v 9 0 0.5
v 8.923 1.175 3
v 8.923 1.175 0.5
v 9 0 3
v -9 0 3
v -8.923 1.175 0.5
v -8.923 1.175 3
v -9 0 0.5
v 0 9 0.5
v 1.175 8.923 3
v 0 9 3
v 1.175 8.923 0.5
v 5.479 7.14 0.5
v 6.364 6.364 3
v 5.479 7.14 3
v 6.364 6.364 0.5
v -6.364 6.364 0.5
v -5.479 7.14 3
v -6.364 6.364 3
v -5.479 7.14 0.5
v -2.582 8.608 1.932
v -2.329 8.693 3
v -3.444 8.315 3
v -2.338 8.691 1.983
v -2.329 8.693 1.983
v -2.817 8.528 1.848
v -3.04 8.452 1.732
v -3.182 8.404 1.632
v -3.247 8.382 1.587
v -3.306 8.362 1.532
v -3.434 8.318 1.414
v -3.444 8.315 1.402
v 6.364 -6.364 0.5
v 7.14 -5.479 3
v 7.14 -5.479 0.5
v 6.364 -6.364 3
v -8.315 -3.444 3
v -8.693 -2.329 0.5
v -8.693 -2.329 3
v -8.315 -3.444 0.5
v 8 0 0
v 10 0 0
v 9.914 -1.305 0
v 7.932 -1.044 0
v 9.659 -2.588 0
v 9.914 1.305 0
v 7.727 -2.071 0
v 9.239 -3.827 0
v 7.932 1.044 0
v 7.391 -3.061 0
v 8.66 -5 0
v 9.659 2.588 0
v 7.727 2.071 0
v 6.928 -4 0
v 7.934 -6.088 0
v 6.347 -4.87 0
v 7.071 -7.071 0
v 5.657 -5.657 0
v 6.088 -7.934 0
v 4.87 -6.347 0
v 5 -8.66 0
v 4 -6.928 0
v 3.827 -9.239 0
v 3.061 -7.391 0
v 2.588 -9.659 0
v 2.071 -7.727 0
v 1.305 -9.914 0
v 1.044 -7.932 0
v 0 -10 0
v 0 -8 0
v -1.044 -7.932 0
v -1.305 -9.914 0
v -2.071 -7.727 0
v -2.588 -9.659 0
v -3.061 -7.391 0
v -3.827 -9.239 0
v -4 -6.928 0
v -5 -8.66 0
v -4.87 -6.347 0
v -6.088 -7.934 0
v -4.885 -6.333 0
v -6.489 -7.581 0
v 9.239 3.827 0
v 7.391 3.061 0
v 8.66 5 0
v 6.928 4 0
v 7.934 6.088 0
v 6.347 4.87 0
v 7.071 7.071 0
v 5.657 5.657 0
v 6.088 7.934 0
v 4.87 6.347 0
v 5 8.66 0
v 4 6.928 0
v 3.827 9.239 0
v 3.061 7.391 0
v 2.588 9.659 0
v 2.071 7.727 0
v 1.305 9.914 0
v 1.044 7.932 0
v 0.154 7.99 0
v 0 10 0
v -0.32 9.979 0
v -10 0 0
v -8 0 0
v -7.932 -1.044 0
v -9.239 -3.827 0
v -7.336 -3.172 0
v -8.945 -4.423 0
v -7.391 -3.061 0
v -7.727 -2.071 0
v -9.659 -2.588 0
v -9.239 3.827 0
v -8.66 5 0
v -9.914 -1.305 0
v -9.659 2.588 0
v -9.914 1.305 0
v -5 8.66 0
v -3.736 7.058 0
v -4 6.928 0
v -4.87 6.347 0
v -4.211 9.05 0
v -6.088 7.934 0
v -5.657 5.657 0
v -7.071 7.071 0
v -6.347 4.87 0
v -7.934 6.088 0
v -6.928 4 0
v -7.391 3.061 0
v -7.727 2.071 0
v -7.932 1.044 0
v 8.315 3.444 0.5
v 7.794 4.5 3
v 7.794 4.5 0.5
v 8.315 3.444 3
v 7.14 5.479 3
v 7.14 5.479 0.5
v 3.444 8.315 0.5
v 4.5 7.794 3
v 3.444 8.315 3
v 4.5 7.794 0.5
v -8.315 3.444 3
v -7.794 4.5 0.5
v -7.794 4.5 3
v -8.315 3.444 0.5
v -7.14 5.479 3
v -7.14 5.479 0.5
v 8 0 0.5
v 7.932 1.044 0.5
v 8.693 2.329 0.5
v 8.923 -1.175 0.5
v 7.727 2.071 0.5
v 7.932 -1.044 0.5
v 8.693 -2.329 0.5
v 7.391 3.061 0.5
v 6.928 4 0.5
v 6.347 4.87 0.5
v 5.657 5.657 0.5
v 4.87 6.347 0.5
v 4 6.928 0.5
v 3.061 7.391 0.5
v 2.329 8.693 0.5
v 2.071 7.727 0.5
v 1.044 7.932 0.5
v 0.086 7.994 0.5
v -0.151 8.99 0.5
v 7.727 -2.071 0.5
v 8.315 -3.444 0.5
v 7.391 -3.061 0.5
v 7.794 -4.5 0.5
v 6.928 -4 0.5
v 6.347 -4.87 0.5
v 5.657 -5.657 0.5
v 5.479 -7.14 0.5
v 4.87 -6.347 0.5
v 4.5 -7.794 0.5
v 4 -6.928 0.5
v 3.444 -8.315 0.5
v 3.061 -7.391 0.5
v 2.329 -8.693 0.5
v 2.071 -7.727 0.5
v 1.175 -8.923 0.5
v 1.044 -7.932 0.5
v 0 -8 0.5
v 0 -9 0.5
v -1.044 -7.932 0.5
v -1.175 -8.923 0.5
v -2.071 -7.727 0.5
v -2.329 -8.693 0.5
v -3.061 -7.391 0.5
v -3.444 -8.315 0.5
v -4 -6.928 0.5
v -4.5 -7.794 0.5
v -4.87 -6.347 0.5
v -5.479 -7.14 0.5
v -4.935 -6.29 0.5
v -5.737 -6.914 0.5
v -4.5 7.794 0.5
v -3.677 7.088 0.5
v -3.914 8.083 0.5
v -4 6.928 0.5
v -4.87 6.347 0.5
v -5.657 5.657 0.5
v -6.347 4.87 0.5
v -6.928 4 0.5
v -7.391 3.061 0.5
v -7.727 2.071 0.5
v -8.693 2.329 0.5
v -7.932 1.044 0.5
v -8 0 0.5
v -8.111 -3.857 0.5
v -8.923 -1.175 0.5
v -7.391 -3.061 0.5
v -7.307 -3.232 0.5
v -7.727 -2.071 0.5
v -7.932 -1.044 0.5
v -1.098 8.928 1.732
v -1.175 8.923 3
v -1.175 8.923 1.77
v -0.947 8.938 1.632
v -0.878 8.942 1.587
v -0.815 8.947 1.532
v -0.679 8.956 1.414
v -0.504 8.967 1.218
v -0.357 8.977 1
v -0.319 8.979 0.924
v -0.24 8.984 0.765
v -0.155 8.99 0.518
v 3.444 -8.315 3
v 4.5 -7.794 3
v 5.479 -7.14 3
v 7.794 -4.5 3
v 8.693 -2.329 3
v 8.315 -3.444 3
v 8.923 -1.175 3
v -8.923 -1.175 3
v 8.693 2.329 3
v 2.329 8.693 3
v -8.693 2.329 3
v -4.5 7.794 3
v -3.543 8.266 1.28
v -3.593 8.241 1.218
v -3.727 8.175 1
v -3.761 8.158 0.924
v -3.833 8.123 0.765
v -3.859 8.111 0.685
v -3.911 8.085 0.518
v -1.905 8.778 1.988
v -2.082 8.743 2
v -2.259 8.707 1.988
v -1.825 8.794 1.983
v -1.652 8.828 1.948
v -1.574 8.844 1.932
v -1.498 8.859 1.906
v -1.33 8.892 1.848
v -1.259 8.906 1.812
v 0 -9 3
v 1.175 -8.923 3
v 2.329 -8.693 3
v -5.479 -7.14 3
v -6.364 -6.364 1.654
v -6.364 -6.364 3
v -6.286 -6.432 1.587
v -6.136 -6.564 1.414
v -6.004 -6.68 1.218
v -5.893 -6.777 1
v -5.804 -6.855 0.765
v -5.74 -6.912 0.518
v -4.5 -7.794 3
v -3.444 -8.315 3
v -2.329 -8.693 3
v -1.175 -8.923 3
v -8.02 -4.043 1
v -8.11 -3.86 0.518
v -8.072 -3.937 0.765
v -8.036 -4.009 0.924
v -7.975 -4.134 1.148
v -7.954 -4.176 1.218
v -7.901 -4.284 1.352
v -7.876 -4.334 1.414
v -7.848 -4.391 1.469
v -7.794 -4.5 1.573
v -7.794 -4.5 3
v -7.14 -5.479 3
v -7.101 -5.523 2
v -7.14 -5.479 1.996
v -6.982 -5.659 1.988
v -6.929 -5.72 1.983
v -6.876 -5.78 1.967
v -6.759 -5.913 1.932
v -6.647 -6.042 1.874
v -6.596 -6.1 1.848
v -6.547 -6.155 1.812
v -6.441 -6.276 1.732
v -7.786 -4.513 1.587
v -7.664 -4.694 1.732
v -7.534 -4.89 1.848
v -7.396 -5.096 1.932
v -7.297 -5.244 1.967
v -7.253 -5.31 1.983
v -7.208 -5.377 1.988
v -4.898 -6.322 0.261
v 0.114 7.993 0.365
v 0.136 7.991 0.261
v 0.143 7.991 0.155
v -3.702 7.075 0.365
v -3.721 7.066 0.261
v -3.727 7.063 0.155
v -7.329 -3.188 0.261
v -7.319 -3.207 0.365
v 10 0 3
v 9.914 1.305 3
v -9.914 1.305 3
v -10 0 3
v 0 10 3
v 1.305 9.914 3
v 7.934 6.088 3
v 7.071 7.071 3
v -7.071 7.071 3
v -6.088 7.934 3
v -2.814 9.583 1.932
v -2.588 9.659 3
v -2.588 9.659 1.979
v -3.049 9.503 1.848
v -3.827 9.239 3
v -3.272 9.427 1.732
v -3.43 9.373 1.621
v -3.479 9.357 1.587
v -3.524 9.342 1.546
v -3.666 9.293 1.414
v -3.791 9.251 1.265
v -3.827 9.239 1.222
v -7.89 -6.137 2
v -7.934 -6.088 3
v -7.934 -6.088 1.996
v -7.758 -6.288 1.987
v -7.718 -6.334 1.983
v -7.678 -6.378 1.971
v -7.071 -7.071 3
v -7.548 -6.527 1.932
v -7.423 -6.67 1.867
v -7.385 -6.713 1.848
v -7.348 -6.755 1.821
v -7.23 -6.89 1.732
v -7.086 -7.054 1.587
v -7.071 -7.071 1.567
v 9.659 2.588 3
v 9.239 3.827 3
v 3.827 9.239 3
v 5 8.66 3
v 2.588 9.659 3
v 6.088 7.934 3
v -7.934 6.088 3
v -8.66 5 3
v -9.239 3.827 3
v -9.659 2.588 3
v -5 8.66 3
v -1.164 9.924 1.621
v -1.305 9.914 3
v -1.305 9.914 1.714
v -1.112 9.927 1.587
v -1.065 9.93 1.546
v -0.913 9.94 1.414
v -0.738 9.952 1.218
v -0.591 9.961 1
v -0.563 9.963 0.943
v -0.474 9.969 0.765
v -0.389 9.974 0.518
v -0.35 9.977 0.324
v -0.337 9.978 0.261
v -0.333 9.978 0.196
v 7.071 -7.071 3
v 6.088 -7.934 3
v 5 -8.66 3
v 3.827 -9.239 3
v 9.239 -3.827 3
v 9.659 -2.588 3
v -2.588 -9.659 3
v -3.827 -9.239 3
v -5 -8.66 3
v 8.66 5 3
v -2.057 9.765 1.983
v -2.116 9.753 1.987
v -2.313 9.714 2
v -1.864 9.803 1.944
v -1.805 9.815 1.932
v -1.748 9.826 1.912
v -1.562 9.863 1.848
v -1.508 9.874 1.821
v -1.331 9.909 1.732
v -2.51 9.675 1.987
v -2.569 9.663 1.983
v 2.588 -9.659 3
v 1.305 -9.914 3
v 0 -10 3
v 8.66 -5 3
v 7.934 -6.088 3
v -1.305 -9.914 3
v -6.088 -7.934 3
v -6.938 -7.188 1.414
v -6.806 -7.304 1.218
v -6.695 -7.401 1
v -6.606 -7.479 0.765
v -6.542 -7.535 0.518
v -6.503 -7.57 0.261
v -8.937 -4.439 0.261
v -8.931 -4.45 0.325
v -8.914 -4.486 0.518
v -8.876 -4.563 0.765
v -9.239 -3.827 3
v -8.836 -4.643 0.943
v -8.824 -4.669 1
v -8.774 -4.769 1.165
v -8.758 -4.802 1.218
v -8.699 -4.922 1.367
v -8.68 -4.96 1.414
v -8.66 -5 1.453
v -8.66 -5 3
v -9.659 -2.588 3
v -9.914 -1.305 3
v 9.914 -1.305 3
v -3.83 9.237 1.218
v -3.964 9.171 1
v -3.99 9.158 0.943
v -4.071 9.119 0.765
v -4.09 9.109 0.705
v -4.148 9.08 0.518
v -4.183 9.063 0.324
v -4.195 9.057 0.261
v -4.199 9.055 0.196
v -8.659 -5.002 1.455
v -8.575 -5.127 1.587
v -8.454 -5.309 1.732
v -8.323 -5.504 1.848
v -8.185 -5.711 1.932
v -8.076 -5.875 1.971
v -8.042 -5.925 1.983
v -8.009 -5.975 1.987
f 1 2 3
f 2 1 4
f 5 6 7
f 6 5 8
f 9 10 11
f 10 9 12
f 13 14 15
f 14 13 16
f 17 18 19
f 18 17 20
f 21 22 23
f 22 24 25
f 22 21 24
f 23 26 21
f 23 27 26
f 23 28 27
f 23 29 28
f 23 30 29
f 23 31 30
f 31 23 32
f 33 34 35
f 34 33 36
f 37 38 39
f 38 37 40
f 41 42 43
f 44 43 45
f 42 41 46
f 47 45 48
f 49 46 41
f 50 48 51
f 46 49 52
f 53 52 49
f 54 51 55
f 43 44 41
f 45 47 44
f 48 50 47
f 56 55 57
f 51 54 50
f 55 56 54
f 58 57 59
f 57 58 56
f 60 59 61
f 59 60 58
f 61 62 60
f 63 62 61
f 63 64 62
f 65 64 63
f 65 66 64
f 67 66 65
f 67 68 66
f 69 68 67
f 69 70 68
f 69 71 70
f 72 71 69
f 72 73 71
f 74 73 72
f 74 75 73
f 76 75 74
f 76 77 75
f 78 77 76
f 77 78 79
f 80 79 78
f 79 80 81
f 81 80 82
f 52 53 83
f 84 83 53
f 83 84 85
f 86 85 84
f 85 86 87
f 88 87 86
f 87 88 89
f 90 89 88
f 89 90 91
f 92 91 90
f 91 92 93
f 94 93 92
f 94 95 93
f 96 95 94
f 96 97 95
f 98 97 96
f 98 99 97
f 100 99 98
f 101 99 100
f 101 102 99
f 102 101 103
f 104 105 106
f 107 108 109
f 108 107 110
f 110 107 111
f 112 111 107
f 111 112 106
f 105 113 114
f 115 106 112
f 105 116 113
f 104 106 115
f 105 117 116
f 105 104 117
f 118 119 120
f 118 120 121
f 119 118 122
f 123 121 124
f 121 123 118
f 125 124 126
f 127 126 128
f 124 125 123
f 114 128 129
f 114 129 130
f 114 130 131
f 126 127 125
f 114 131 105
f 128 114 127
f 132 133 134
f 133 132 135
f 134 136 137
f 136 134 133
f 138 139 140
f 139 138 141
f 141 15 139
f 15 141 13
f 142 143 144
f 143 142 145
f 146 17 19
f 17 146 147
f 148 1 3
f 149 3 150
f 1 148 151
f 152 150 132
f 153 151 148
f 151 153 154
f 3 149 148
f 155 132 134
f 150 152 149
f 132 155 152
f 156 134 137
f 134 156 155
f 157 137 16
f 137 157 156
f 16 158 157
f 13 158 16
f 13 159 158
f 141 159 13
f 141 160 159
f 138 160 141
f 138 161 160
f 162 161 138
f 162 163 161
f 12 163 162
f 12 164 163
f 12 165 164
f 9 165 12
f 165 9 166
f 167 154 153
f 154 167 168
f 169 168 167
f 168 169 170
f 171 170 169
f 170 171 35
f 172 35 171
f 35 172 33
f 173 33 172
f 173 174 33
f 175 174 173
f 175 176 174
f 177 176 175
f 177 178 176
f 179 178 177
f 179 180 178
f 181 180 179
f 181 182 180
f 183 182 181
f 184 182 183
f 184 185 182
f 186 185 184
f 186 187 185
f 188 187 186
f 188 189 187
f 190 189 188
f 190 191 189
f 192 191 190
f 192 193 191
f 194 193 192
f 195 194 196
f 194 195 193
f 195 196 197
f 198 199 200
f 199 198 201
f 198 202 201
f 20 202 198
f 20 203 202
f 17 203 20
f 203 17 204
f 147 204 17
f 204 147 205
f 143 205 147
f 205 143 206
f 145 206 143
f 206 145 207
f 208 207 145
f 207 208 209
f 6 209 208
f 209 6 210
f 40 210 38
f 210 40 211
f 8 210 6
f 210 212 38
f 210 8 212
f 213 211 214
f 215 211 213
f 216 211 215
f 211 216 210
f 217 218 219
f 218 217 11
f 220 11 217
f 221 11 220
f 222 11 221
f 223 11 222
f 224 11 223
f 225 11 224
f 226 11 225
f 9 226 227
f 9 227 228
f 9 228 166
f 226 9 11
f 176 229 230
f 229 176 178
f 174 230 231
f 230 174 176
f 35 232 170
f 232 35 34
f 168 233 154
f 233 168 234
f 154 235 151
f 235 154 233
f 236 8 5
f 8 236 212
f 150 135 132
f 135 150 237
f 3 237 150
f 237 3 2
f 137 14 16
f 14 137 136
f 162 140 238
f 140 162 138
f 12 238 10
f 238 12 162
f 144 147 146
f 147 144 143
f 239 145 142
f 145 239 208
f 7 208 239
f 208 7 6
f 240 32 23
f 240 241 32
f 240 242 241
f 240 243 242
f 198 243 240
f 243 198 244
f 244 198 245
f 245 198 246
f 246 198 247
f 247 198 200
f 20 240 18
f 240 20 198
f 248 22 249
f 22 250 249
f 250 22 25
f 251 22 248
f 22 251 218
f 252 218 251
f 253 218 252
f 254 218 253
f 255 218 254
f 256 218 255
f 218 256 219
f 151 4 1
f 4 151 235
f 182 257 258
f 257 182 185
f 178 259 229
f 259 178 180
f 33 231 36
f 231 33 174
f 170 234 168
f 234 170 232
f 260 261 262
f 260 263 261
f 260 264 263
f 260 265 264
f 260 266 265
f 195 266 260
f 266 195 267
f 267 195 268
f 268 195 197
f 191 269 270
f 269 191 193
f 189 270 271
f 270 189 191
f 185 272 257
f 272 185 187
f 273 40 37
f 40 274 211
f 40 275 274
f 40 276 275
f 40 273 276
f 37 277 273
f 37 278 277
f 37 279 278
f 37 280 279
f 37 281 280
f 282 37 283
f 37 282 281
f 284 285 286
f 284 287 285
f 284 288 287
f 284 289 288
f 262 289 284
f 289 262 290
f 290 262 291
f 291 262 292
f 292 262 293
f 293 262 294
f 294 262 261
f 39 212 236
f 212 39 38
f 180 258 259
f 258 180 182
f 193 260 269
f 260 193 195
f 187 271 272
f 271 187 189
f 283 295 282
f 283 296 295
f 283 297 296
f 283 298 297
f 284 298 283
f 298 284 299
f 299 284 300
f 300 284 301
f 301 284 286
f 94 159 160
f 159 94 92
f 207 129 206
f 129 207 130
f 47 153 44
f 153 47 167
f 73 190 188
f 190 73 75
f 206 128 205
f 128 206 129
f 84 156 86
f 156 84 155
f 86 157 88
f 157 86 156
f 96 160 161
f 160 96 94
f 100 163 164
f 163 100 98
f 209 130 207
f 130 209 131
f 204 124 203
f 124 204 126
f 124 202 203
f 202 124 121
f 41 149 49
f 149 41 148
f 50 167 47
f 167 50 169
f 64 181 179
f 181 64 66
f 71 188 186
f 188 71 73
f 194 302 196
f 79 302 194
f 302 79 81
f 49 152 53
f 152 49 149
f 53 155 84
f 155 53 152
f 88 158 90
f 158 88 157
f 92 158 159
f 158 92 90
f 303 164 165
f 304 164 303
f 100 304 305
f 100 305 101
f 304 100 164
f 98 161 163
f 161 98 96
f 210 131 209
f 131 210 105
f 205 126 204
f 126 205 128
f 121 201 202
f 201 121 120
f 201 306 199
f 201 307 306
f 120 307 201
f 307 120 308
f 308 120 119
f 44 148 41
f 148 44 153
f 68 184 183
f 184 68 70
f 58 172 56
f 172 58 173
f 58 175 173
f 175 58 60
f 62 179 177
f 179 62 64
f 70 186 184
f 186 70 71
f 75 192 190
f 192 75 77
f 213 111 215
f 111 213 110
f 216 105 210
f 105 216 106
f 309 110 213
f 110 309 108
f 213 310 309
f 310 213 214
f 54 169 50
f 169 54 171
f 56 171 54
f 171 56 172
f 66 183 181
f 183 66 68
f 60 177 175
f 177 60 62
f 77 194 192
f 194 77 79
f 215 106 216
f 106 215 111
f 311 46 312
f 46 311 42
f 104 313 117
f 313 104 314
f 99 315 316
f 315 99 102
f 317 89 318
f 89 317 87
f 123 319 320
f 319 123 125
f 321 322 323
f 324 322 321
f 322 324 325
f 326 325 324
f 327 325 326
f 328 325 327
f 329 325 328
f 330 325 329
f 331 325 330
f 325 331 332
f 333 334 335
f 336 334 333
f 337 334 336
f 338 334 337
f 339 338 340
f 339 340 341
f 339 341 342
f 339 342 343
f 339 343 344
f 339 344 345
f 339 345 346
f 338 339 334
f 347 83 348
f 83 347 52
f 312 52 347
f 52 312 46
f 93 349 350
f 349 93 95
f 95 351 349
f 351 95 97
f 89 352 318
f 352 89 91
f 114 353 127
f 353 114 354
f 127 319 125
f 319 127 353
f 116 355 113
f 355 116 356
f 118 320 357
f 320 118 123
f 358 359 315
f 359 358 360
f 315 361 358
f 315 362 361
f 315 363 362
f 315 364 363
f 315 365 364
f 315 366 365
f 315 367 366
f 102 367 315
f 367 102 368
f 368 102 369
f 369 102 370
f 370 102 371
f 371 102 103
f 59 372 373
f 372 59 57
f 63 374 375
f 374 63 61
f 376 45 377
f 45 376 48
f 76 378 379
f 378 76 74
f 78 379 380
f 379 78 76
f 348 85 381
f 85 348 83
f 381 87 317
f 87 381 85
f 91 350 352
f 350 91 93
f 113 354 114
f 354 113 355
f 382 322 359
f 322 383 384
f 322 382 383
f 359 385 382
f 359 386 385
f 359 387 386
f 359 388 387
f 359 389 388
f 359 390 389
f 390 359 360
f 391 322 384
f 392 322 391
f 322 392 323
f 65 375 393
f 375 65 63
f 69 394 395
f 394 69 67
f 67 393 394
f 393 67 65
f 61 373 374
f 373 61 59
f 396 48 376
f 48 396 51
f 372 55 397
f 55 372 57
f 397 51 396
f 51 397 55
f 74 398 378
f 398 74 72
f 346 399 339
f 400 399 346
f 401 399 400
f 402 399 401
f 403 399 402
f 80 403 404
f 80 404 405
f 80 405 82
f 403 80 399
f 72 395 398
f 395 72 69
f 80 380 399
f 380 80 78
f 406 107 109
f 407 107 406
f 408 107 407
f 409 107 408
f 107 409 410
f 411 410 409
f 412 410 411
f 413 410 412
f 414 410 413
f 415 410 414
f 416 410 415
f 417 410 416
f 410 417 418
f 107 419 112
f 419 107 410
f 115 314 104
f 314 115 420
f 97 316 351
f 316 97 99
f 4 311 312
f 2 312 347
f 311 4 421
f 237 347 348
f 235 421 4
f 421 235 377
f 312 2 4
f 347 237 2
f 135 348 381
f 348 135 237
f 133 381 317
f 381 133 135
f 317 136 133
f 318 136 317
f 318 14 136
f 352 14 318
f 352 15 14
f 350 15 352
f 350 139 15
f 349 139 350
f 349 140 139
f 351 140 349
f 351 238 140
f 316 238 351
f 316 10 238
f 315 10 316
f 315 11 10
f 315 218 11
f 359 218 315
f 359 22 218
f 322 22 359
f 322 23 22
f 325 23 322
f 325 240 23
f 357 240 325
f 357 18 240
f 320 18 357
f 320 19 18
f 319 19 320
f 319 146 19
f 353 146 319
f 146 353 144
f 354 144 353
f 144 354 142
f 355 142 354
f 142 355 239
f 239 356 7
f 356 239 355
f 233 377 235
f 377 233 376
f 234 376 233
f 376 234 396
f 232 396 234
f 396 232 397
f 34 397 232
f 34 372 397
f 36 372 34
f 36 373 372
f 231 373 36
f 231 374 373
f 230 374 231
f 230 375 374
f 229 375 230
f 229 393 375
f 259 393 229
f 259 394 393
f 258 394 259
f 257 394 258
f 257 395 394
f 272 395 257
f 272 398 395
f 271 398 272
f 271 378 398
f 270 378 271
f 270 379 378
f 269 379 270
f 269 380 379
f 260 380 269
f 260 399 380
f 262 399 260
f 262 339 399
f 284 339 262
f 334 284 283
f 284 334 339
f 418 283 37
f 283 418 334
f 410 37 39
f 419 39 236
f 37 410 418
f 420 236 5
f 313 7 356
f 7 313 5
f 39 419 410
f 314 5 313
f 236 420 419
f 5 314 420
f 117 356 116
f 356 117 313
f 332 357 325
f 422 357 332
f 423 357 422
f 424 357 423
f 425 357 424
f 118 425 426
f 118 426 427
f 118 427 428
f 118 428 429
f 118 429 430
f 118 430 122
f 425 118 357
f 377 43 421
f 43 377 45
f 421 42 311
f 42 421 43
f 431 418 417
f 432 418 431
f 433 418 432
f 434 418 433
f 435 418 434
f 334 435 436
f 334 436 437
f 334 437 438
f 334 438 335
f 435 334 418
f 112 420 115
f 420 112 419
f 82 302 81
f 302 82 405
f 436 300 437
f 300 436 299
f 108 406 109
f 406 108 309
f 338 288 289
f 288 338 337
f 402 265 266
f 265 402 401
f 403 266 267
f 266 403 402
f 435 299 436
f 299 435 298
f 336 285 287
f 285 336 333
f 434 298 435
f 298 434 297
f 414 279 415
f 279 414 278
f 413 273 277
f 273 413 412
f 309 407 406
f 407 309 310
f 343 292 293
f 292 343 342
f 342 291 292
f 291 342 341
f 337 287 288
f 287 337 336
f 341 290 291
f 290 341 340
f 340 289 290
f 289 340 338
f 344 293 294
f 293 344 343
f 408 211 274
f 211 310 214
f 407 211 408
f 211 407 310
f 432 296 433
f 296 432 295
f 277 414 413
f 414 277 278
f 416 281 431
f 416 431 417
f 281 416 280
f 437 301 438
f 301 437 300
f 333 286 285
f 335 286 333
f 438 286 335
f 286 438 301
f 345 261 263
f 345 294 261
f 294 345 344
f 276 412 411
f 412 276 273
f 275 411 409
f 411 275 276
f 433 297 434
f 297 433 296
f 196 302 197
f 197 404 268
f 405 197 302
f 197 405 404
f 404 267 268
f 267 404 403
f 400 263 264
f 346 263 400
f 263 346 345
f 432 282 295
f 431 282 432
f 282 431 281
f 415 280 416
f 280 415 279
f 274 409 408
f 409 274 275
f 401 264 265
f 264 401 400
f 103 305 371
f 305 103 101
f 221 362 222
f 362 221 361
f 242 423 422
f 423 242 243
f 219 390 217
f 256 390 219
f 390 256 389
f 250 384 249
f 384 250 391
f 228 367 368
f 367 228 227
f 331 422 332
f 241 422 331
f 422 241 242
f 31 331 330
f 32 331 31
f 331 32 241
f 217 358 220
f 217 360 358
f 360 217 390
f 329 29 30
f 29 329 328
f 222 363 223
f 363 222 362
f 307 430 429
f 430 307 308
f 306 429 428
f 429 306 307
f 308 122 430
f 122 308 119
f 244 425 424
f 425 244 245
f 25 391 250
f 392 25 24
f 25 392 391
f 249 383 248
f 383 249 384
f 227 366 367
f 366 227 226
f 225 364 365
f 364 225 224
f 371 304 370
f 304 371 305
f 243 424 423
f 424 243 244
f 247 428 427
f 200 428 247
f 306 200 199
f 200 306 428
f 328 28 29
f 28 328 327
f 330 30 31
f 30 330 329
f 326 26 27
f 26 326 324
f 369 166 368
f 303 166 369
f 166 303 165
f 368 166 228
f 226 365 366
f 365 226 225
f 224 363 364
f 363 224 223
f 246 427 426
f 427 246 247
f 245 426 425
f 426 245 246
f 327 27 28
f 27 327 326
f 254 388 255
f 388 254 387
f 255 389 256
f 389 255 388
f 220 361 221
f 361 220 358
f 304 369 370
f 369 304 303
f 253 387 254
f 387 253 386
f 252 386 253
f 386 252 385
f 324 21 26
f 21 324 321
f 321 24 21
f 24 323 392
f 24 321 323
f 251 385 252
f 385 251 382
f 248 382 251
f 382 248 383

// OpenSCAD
// file: ../build_environments.scad
// build_environments.scad: modules to build level sections
//

module pool(diameter=10.0, wall_height=2.0, step_width=3.0, connections=[])
{
    difference() {
        union() {
        difference() {
            cylinder(h=0.5,r1=diameter+step_width,r2=diameter+step_width,$fn=48);
            translate([0,0,-0.1])
                cylinder(h=0.7,r1=diameter,r2=diameter,$fn=48);
        }
        difference() {
            cylinder(h=wall_height,r1=diameter+step_width+1.0,r2=diameter+step_width+1.0,$fn=48);
            translate([0,0,-0.1])
                cylinder(h=wall_height+0.2,r1=diameter+step_width,r2=diameter+step_width,$fn=48);
        }
        }
    
        for (c = connections)
        {
            rotate([0,90,0]) {
                angle = atan2(c[1],c[0]);
                rotate([-angle,0,0]) {
                    cylinder(h=diameter+5.0,r1=c[2],r2=c[2],$fn=48);
                }
            }
        }
    }
}

module straight(length=10.0, width=2.0, dy1=0.0, dy2=0.0, dz=0.0)
{
    dims = [0, 0, 0, 0, 0, (dz/length)];
    matrix = [
        [ 1, dims[0], dims[1], 0 ],
        [ dims[2], 1, dims[4], 0 ],
        [ dims[5], dims[3], 1, 0 ],
        [ 0, 0, 0, 1 ]
    ];
    multmatrix(matrix)
    difference() {
        translate([dy1,0,0])
        union() {
            rotate([0,90,0]) {
                difference() {
                    cylinder(h=(length-dy1-dy2),r1=width+1.0,r2=width+1.0,$fn=24);
                    translate([0,0,-0.1])
                        cylinder(h=(length-dy1-dy2+0.2),r1=width,r2=width,$fn=24);
                }
                difference() {
                    cylinder(h=1.0,r1=width+2.0,r2=width+2.0,$fn=24);
                    translate([0,0,-0.1])
                        cylinder(h=1.2,r1=width,r2=width,$fn=24);
                }
                translate([0,0,(length-dy1-dy2)-1.0]) {
                    difference() {
                        cylinder(h=1.0,r1=width+2.0,r2=width+2.0,$fn=24);
                        translate([0,0,-0.1])
                            cylinder(h=1.2,r1=width,r2=width,$fn=24);
                    }
                }
            }
        }
        translate([0,0,-(2*width+4.0)/2])
            cube([3*length,3*length,2*width+4.0],center=true);
    }
}

module curve(p0=[0,0], center=[0,0], dir=1, angle=0.0, width=2.0)
{
    radius = sqrt((p0[0]-center[0])*(p0[0]-center[0]) + (p0[1]-center[1])*(p0[1]-center[1]));
    if (dir == 0) {
        difference() {
            rotate([0,0,-90])
            difference() {
                rotate_extrude(angle = angle, convexity = 10, $fn=32)
                    translate([radius, 0, 0])
                        circle(r = width+1.0,$fn=24);
                rotate([0,0,-1.0])
                    rotate_extrude(angle = angle+2.0, convexity = 10, $fn=32)
                        translate([radius, 0, 0])
                            circle(r = width,$fn=24);
            }
            translate([0,0,-(2*width+4.0)/2])
                cube([5*radius,5*radius,2*width+4.0],center=true);
        }
    }
    else {
        difference() {
            rotate([0,0,90])
            difference() {
                rotate_extrude(angle = -angle, convexity = 10, $fn=32)
                    translate([radius, 0, 0])
                        circle(r = width+1.0,$fn=24);
                rotate([0,0,1.0])
                    rotate_extrude(angle = -angle-2.0, convexity = 10, $fn=32)
                        translate([radius, 0, 0])
                            circle(r = width,$fn=24);
            }
            translate([0,0,-(2*width+4.0)/2])
                cube([5*radius,5*radius,2*width+4.0],center=true);
        }
    }

}

// test pool
//pool(diameter=12.0000, wall_height=3.0000, step_width=3.0000, connections=[[0.0000,-26.0000,2.0000], [23.6074,0.0000,2.0000]]);

// test straight, slope
//straight(length=26.0000, width=2.0000, dy1=11.8322, dy2=6.7082, dz=0.0000);
//straight(length=29.1549, width=12.0000, dy1=0.0000, dy2=0.0000, dz=-15.0000);

// test curve
//curve(p0=[23.6074, 0.0000], center=[23.6074, 5.0000], dir=0, angle=60.1011, width=2.0000);
//curve(p0=[33.6426, 12.4219], center=[37.9771, 9.9295], dir=1, angle=120.4627, width=2.0000);
// main file
use <../build_environments.scad>;
pool(diameter=8.0000, wall_height=3.0000, step_width=1.0000, connections=[[-18.0000,-14.0000,2.0000], [-5.0000,21.0000,2.0000]]);
